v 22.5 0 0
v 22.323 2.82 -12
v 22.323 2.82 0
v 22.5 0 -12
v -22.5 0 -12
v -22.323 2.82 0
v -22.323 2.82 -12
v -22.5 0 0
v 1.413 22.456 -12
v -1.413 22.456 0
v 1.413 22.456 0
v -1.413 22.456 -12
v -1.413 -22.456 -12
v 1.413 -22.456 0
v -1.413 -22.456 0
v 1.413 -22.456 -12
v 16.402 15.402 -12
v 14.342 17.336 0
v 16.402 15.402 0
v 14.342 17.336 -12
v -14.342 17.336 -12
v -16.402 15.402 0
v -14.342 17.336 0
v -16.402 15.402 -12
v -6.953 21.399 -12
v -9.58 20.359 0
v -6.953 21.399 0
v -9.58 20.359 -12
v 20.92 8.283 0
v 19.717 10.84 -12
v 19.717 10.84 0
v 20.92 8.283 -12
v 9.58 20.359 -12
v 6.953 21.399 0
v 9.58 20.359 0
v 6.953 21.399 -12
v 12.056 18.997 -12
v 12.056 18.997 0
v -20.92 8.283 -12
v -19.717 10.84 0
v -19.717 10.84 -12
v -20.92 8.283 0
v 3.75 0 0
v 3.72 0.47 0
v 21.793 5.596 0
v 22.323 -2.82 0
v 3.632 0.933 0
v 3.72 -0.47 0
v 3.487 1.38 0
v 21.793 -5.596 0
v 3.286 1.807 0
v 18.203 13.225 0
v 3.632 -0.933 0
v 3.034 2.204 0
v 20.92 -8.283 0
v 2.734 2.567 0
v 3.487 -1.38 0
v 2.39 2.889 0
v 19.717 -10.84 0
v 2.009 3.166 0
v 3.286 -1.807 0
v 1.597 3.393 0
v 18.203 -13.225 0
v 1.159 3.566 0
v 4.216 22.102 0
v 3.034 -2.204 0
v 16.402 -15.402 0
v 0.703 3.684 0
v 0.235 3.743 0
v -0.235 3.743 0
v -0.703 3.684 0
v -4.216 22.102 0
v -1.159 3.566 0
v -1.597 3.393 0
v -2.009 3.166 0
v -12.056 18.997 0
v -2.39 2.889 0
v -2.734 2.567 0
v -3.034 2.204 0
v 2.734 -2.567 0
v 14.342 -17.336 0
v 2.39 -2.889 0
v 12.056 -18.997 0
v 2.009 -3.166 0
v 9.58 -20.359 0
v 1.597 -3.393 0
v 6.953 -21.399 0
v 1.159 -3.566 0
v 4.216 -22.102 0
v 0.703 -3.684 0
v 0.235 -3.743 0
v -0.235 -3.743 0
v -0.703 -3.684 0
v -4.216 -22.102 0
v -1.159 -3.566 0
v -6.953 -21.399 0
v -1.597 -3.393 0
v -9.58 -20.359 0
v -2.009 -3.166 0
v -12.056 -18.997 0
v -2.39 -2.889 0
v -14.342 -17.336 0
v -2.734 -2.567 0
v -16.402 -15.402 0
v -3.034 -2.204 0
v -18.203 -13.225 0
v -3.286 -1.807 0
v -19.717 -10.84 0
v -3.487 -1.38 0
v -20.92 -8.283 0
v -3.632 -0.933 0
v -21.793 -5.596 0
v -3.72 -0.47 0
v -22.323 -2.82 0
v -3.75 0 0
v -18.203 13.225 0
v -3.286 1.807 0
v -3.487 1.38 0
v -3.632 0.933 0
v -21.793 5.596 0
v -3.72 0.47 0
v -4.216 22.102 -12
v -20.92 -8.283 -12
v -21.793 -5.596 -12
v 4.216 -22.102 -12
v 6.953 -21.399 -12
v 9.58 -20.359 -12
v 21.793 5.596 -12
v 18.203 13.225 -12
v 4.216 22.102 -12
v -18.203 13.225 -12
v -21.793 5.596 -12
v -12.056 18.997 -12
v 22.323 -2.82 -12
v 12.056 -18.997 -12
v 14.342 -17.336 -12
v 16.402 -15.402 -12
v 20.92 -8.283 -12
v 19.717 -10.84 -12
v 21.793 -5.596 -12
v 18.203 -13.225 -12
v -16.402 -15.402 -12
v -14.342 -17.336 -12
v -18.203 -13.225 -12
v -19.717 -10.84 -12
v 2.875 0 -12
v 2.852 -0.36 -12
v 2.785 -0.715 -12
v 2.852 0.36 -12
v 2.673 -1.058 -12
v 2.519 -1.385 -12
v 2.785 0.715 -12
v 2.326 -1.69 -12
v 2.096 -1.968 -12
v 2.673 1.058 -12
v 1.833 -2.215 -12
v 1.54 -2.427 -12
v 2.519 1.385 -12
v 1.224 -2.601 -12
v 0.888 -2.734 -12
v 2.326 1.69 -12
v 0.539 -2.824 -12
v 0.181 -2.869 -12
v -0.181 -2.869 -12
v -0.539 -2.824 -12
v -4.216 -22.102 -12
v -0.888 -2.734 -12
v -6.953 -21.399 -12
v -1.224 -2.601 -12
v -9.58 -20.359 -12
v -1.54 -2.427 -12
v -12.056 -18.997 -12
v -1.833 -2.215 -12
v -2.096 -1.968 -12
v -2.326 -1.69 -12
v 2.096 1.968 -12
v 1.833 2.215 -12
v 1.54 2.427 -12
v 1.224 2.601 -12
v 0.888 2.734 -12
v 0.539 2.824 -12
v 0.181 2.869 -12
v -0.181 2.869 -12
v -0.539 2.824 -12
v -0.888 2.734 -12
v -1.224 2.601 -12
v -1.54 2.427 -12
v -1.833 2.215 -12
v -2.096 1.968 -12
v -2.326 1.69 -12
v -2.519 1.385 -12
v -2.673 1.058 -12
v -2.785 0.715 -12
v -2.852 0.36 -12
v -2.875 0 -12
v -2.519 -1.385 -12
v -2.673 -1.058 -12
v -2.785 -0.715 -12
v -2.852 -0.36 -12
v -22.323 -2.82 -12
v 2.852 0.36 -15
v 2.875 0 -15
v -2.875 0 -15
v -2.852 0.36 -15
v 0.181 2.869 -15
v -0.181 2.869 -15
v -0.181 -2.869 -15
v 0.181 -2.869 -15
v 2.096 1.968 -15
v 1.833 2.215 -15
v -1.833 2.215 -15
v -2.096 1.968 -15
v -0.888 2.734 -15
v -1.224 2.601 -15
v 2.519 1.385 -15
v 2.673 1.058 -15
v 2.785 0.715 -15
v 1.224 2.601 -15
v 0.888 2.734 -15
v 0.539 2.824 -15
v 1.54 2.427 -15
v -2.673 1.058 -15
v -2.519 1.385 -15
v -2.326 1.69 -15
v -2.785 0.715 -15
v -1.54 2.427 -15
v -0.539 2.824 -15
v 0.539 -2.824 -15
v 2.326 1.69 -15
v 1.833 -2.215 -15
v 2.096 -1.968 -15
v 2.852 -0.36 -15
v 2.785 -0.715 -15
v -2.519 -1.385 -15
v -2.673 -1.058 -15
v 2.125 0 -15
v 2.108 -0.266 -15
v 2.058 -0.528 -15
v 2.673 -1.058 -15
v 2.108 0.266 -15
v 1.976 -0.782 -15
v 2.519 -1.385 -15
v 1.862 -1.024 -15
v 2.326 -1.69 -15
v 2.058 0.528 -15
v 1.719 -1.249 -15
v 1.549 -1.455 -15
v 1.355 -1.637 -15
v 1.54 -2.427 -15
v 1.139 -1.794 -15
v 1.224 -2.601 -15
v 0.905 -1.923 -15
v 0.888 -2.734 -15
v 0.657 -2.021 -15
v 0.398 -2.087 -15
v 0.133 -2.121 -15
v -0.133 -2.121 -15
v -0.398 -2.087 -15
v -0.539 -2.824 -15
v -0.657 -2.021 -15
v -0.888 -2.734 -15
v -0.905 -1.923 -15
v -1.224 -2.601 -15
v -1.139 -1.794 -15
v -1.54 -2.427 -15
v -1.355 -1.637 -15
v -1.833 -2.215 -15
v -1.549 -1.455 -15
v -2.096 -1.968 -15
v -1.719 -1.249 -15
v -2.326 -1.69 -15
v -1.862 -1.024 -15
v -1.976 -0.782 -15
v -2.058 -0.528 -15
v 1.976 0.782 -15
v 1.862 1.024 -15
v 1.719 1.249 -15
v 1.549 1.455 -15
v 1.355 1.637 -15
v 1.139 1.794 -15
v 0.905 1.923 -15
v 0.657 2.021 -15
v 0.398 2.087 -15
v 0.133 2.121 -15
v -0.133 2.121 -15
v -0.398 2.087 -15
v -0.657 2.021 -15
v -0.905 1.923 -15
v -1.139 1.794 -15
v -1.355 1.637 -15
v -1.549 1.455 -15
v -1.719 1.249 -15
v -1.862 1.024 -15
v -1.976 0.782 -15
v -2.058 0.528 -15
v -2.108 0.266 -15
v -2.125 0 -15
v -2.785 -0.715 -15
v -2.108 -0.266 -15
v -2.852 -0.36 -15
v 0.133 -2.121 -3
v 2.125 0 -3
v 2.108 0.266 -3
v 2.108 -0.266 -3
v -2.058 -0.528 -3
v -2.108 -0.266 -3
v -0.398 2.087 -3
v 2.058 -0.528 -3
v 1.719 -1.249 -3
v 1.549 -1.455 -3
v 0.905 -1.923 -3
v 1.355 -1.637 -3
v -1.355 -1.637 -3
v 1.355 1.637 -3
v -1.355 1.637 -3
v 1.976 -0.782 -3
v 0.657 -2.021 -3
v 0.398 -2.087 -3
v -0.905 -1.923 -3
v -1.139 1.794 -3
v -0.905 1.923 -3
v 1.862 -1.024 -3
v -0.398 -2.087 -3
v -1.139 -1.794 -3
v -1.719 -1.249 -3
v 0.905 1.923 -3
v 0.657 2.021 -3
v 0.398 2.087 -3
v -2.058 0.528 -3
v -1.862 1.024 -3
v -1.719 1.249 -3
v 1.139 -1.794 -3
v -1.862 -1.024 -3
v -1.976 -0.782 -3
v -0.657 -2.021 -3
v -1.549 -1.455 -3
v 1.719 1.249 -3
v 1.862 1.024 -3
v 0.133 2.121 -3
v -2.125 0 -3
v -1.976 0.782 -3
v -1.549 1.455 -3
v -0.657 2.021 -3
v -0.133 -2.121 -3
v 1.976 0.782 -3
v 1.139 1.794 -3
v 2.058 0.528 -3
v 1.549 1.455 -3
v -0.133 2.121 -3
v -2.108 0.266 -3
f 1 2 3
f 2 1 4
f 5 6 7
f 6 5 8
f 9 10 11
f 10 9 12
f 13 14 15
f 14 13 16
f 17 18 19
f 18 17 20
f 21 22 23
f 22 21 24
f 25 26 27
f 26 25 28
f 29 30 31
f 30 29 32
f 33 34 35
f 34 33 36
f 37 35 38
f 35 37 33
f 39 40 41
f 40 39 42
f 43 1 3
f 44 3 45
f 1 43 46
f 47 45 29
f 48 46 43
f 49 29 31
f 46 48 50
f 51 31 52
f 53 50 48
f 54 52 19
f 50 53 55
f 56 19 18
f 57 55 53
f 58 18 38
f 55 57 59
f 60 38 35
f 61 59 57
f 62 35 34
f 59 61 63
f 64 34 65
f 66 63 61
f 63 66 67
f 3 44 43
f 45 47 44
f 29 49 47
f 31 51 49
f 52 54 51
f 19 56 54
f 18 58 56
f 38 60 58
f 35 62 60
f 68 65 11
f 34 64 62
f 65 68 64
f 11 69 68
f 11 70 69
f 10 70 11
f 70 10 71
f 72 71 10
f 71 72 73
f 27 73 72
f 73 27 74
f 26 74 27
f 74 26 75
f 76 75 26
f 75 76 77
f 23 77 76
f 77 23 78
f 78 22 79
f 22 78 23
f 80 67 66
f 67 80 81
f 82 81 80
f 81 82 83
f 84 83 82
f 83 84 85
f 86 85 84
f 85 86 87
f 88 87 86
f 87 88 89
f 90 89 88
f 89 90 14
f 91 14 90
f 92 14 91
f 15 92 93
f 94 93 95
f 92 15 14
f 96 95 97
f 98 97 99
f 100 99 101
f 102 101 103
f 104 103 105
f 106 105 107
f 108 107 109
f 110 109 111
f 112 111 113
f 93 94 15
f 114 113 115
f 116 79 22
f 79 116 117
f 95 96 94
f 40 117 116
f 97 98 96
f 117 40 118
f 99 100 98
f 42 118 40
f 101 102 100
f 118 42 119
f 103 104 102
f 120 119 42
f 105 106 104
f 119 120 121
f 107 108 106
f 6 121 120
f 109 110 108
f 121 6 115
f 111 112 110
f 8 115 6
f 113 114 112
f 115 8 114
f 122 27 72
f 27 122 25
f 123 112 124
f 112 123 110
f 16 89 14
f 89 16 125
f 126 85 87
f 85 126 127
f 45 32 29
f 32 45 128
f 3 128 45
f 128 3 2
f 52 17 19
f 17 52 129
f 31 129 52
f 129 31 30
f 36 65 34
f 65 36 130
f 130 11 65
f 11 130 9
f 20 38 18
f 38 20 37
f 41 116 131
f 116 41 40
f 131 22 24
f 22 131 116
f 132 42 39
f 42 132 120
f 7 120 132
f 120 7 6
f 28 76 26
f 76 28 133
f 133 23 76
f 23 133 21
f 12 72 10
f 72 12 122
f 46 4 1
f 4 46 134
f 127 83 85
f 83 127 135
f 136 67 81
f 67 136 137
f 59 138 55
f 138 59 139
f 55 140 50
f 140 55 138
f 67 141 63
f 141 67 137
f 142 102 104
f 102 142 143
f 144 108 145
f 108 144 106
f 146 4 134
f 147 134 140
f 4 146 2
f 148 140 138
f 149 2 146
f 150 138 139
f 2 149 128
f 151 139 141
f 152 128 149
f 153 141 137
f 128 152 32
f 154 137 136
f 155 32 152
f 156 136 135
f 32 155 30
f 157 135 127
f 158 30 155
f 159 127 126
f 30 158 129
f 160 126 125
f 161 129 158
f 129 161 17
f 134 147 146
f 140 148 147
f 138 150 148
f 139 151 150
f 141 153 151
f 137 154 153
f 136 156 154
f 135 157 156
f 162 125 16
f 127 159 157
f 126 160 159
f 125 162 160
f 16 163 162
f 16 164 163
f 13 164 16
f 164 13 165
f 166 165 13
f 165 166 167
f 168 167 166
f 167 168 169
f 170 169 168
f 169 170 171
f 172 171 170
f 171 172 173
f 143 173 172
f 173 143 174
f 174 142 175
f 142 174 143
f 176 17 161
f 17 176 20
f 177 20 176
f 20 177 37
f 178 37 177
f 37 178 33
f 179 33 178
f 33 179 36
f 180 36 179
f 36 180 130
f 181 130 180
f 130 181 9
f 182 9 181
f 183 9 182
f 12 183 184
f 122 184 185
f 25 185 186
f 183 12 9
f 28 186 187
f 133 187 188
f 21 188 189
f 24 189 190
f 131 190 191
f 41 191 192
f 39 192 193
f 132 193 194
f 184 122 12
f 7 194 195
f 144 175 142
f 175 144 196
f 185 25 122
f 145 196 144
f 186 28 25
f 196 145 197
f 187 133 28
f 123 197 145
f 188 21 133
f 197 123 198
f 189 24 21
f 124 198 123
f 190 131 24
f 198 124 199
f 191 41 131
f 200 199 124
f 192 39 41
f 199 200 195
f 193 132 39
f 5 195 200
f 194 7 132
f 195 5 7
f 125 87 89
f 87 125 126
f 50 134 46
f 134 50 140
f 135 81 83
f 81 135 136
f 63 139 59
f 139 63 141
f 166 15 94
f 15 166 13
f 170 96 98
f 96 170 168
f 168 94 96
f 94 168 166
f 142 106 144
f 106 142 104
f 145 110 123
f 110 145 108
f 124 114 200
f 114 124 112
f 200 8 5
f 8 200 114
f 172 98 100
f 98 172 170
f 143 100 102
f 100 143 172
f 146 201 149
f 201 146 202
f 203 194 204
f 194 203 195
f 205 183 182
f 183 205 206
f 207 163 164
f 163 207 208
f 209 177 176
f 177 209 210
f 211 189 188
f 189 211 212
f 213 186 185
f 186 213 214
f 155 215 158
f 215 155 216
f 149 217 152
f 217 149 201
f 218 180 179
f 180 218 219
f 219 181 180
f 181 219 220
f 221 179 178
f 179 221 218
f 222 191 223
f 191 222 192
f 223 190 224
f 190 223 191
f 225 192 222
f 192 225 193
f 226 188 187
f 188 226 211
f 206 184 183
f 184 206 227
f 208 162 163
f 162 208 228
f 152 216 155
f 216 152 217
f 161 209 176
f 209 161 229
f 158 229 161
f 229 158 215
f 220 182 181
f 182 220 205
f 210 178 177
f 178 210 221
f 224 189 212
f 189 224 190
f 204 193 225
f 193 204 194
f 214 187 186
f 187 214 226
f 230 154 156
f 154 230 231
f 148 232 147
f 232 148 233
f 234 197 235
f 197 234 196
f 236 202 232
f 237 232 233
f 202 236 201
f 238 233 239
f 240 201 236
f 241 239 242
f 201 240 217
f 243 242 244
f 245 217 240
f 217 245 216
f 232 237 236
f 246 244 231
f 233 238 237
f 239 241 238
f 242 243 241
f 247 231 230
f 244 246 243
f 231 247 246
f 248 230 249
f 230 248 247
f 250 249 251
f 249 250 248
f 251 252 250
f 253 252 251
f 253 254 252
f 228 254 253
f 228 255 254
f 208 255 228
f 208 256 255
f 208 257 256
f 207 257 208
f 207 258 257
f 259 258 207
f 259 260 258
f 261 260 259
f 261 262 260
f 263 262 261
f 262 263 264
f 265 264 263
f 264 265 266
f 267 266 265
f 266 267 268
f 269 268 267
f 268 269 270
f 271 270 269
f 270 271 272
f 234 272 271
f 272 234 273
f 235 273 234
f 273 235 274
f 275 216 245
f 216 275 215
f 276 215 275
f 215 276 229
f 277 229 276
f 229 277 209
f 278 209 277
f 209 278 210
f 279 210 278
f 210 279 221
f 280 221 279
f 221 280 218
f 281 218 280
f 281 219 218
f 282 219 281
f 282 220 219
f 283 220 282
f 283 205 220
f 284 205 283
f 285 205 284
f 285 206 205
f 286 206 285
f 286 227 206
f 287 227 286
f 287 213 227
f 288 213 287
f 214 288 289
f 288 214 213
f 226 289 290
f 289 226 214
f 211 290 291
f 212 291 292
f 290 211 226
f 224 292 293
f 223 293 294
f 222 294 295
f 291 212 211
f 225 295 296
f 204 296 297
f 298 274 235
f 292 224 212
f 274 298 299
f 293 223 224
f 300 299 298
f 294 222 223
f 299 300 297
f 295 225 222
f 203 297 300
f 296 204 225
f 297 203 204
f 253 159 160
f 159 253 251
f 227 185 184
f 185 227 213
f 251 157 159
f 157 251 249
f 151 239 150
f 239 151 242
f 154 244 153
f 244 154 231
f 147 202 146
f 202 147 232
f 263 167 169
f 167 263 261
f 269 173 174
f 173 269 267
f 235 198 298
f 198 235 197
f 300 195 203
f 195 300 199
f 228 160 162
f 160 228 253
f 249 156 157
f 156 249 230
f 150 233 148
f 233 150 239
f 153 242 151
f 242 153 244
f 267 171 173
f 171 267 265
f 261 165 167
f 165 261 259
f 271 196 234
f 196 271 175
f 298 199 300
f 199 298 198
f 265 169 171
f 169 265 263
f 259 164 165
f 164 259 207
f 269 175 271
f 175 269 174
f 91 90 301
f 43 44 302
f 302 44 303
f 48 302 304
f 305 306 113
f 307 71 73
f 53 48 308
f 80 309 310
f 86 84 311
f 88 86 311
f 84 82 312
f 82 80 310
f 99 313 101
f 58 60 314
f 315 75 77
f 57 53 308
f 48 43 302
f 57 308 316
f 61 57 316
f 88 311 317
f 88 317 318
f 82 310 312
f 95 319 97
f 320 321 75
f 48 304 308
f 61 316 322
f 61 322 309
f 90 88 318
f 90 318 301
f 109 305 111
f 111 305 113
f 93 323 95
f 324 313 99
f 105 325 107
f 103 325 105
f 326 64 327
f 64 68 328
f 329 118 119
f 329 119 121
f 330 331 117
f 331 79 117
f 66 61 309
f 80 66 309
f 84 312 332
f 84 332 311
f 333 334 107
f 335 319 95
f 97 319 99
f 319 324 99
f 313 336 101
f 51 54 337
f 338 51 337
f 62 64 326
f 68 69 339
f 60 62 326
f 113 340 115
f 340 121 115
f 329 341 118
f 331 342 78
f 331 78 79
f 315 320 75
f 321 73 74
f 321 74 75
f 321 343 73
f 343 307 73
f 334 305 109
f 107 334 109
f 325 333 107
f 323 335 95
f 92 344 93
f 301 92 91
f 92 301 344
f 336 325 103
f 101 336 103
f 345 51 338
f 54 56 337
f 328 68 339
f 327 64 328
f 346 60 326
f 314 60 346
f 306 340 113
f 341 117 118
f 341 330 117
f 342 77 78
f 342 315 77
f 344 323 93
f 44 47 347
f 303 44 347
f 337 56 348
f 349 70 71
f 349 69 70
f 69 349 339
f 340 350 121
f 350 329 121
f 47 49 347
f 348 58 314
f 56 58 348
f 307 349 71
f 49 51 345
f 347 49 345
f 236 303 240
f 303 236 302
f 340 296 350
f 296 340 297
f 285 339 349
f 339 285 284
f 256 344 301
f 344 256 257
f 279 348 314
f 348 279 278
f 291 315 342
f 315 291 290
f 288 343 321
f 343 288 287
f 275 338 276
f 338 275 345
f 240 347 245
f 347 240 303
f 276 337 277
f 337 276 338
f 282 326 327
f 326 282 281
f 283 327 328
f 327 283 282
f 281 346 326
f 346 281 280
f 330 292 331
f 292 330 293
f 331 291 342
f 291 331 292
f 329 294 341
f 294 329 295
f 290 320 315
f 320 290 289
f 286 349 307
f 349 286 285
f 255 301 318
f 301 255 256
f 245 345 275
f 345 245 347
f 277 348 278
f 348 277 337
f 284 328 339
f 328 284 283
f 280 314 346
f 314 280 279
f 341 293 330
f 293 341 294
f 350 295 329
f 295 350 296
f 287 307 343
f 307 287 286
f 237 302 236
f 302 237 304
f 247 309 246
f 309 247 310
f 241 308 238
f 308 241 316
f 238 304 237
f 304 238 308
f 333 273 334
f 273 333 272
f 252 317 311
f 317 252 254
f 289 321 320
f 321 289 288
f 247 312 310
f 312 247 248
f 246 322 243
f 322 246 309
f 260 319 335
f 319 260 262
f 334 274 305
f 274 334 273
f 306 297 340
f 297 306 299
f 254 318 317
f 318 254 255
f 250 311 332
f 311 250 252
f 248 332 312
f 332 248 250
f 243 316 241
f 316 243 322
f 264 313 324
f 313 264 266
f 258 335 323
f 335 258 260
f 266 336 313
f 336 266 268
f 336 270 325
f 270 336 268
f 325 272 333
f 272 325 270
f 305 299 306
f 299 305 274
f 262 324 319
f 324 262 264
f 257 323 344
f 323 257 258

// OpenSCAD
$fn = 50;

difference() {
	union() {
		translate(v = [0, 0, -12.0]) {
			cylinder(h = 12, r = 22.5);
		}
		#translate(v = [0, 0, -15.0]) {
			cylinder(h = 15, r = 2.875);
		}
	}
	union() {
		translate(v = [0, 0, 0]) {
			rotate(a = [0, 0, 0]) {
				difference() {
					union() {
						translate(v = [0, 0, -15.0]) {
							cylinder(h = 15, r = 2.0);
						}
						translate(v = [0, 0, -3]) {
							cylinder(h = 3, r1 = 2.125, r2 = 3.75);
						}
						translate(v = [0, 0, -15.0]) {
							cylinder(h = 15, r = 2.125);
						}
						translate(v = [0, 0, -15.0]) {
							cylinder(h = 15, r = 2.0);
						}
					}
					union();
				}
			}
		}
	}
}
